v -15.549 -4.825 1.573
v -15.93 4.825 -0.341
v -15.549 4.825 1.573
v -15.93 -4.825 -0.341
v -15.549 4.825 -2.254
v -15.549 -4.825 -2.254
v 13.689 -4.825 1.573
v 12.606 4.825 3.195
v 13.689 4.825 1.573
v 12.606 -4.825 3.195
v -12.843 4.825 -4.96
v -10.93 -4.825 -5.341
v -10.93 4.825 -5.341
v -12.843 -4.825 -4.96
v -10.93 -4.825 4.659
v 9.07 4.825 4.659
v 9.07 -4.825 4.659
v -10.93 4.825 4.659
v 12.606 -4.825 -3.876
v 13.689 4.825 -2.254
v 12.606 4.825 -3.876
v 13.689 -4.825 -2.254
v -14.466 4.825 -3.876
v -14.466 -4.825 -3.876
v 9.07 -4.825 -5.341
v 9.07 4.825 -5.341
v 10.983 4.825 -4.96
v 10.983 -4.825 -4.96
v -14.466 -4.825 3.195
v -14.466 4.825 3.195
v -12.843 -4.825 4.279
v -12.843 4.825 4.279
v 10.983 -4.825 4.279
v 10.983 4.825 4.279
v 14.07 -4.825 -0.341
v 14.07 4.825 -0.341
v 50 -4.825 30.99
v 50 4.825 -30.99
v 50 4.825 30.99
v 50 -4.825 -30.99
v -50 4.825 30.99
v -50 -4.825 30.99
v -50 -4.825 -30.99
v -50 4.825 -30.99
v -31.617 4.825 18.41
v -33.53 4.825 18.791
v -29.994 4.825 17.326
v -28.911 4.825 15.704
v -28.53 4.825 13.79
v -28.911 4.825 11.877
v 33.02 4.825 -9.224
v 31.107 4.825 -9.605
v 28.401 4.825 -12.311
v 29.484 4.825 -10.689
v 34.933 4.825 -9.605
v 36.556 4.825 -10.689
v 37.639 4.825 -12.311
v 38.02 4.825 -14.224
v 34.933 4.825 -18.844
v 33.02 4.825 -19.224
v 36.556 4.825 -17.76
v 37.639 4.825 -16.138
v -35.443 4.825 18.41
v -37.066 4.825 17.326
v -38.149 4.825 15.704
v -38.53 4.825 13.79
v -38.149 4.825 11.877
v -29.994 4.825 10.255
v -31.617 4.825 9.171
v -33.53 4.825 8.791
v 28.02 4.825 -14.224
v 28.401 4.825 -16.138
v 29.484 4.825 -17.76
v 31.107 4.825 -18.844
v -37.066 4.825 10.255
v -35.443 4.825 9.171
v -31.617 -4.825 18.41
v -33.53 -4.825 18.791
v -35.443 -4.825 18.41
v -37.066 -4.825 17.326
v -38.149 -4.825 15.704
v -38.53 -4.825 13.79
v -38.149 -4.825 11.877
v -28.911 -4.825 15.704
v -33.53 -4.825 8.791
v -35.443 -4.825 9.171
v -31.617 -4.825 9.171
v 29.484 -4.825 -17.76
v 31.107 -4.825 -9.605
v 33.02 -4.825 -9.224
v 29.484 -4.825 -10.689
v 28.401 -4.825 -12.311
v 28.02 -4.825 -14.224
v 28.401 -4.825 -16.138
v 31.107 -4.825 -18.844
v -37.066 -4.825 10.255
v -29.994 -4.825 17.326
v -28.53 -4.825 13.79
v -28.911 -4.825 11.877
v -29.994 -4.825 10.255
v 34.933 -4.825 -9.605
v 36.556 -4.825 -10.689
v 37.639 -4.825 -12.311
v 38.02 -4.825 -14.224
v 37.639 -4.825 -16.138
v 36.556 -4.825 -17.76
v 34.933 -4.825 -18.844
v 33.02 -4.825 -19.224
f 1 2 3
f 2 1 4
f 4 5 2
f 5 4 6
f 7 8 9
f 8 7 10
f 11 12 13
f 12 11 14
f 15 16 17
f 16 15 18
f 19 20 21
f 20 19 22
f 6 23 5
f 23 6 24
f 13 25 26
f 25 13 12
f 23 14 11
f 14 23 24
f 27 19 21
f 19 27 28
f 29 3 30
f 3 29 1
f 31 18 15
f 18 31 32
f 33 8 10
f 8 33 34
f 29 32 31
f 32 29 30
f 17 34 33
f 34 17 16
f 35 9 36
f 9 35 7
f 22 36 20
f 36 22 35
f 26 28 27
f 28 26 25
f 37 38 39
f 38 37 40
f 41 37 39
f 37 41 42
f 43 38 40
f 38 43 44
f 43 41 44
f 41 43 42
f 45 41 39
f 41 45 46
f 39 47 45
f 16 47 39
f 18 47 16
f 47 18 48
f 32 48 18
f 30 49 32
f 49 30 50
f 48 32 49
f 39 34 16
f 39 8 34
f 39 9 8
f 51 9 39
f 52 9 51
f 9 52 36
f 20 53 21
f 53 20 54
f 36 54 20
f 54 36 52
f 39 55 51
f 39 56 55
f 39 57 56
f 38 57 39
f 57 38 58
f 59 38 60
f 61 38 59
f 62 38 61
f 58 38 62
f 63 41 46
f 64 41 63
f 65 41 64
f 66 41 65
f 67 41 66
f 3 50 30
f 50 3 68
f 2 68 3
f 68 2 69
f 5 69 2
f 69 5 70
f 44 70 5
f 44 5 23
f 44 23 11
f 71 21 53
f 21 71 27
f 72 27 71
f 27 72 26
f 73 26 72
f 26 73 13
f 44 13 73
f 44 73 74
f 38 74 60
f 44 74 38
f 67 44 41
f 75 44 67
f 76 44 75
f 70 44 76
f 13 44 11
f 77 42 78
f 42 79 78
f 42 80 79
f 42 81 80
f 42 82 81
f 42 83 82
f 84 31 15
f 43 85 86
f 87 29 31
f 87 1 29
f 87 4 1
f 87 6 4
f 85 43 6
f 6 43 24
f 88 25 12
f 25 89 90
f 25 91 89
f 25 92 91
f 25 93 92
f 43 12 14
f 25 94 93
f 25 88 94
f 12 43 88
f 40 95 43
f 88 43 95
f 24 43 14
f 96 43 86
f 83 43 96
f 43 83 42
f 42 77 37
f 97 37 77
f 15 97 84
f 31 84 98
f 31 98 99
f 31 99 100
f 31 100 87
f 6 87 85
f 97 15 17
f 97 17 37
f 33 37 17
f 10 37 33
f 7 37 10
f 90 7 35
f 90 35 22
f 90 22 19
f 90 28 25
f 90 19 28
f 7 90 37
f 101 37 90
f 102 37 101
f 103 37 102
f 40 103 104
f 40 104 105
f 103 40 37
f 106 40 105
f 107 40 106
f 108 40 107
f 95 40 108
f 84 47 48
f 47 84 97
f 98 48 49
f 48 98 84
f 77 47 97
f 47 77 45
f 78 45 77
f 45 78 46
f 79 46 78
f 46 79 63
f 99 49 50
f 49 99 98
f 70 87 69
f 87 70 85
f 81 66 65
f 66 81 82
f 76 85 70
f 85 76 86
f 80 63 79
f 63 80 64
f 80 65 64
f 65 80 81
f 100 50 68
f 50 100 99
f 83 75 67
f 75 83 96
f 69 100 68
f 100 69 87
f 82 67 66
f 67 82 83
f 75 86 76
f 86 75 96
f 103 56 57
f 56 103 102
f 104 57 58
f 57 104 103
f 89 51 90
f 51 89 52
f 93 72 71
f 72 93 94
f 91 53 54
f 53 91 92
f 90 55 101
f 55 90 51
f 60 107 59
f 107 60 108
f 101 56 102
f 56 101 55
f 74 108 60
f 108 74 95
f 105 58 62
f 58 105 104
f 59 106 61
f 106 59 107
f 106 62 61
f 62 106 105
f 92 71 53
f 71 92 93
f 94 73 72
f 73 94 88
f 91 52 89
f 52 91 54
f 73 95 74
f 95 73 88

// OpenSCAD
/* doodle-meta {"version":1,"parameters":{"width":{"label":"Overall width","description":"Changes the body width","unit":"mm","feature":"body_width"},"height":{"label":"Overall height","description":"Changes the body height","unit":"mm","feature":"body_height"},"thickness":{"label":"Plate thickness","description":"Changes the plate thickness","unit":"mm","feature":"body_thickness"},"hole_diameter":{"label":"Hole diameter","description":"Changes the diameter of the mounting holes","unit":"mm","feature":"holes"},"slot_width":{"label":"Slot width","description":"Changes the width of the central slot","unit":"mm","feature":"slot"},"slot_length":{"label":"Slot length","description":"Changes the length of the central slot","unit":"mm","feature":"slot"}},"features":{"body_width":{"kind":"dimension","axis":"x","label":"Overall width"},"body_height":{"kind":"dimension","axis":"z","label":"Overall height"},"body_thickness":{"kind":"dimension","axis":"y","label":"Plate thickness"},"holes":{"kind":"region","label":"Mounting holes","min":[{"parameter":"width","scale":0.1233},{"parameter":"thickness","scale":0,"offset":0},{"parameter":"height","scale":0.2105}],"max":[{"parameter":"width","scale":0.8733},{"parameter":"thickness","scale":1,"offset":0},{"parameter":"height","scale":0.8614}]},"slot":{"kind":"region","label":"Central slot","min":[{"parameter":"width","scale":0.3412},{"parameter":"thickness","scale":0,"offset":0},{"parameter":"height","scale":0.4209}],"max":[{"parameter":"width","scale":0.6402},{"parameter":"thickness","scale":1,"offset":0},{"parameter":"height","scale":0.5904}]}}} */

// Top-level parameters (user-editable)
width = 100.0;
height = 61.98;
thickness = 9.65;
hole_diameter = 10.0;
slot_width = 10.0;
slot_length = 30.0;

// Derived constants (not editable)
eps = 0.01;

// Module for the main plate body
module plate_body() {
    cube([width, thickness, height], center=true);
}

// Module for a circular hole cutter (axis along Y)
module hole_cutter(d) {
    rotate([90, 0, 0])
        cylinder(d=d, h=thickness + 2*eps, center=true);
}

// Module for a slot cutter (stadium shape, axis along Y)
module slot_cutter(w, l) {
    // Slot is elongated along X, width along Z
    // Create a stadium shape in XZ plane, extruded along Y
    hull() {
        translate([-l/2 + w/2, 0, 0])
            rotate([90, 0, 0])
                cylinder(d=w, h=thickness + 2*eps, center=true);
        translate([l/2 - w/2, 0, 0])
            rotate([90, 0, 0])
                cylinder(d=w, h=thickness + 2*eps, center=true);
    }
    // Fill the middle with a box
    translate([0, 0, 0])
        cube([l - w, thickness + 2*eps, w], center=true);
}

// Main design
difference() {
    plate_body();
    
    // Hole left: center at (0.1647*width, 0.2775*height) in front view
    // Front view: u -> X, v -> -Z (v=0 is top, v=1 is bottom)
    // So Z = (1 - v) * height
    // X = u * width
    // Center X = 0.1647 * width
    // Center Z = (1 - 0.2775) * height = 0.7225 * height
    translate([0.1647 * width - width/2, 0, (1 - 0.2775) * height - height/2])
        hole_cutter(hole_diameter);
    
    // Hole right: center at (0.8302*width, 0.7295*height) in front view
    // Center X = 0.8302 * width
    // Center Z = (1 - 0.7295) * height = 0.2705 * height
    translate([0.8302 * width - width/2, 0, (1 - 0.7295) * height - height/2])
        hole_cutter(hole_diameter);
    
    // Center slot: center at (0.4907*width, 0.5055*height) in front view
    // Center X = 0.4907 * width
    // Center Z = (1 - 0.5055) * height = 0.4945 * height
    translate([0.4907 * width - width/2, 0, (1 - 0.5055) * height - height/2])
        slot_cutter(slot_width, slot_length);
}
